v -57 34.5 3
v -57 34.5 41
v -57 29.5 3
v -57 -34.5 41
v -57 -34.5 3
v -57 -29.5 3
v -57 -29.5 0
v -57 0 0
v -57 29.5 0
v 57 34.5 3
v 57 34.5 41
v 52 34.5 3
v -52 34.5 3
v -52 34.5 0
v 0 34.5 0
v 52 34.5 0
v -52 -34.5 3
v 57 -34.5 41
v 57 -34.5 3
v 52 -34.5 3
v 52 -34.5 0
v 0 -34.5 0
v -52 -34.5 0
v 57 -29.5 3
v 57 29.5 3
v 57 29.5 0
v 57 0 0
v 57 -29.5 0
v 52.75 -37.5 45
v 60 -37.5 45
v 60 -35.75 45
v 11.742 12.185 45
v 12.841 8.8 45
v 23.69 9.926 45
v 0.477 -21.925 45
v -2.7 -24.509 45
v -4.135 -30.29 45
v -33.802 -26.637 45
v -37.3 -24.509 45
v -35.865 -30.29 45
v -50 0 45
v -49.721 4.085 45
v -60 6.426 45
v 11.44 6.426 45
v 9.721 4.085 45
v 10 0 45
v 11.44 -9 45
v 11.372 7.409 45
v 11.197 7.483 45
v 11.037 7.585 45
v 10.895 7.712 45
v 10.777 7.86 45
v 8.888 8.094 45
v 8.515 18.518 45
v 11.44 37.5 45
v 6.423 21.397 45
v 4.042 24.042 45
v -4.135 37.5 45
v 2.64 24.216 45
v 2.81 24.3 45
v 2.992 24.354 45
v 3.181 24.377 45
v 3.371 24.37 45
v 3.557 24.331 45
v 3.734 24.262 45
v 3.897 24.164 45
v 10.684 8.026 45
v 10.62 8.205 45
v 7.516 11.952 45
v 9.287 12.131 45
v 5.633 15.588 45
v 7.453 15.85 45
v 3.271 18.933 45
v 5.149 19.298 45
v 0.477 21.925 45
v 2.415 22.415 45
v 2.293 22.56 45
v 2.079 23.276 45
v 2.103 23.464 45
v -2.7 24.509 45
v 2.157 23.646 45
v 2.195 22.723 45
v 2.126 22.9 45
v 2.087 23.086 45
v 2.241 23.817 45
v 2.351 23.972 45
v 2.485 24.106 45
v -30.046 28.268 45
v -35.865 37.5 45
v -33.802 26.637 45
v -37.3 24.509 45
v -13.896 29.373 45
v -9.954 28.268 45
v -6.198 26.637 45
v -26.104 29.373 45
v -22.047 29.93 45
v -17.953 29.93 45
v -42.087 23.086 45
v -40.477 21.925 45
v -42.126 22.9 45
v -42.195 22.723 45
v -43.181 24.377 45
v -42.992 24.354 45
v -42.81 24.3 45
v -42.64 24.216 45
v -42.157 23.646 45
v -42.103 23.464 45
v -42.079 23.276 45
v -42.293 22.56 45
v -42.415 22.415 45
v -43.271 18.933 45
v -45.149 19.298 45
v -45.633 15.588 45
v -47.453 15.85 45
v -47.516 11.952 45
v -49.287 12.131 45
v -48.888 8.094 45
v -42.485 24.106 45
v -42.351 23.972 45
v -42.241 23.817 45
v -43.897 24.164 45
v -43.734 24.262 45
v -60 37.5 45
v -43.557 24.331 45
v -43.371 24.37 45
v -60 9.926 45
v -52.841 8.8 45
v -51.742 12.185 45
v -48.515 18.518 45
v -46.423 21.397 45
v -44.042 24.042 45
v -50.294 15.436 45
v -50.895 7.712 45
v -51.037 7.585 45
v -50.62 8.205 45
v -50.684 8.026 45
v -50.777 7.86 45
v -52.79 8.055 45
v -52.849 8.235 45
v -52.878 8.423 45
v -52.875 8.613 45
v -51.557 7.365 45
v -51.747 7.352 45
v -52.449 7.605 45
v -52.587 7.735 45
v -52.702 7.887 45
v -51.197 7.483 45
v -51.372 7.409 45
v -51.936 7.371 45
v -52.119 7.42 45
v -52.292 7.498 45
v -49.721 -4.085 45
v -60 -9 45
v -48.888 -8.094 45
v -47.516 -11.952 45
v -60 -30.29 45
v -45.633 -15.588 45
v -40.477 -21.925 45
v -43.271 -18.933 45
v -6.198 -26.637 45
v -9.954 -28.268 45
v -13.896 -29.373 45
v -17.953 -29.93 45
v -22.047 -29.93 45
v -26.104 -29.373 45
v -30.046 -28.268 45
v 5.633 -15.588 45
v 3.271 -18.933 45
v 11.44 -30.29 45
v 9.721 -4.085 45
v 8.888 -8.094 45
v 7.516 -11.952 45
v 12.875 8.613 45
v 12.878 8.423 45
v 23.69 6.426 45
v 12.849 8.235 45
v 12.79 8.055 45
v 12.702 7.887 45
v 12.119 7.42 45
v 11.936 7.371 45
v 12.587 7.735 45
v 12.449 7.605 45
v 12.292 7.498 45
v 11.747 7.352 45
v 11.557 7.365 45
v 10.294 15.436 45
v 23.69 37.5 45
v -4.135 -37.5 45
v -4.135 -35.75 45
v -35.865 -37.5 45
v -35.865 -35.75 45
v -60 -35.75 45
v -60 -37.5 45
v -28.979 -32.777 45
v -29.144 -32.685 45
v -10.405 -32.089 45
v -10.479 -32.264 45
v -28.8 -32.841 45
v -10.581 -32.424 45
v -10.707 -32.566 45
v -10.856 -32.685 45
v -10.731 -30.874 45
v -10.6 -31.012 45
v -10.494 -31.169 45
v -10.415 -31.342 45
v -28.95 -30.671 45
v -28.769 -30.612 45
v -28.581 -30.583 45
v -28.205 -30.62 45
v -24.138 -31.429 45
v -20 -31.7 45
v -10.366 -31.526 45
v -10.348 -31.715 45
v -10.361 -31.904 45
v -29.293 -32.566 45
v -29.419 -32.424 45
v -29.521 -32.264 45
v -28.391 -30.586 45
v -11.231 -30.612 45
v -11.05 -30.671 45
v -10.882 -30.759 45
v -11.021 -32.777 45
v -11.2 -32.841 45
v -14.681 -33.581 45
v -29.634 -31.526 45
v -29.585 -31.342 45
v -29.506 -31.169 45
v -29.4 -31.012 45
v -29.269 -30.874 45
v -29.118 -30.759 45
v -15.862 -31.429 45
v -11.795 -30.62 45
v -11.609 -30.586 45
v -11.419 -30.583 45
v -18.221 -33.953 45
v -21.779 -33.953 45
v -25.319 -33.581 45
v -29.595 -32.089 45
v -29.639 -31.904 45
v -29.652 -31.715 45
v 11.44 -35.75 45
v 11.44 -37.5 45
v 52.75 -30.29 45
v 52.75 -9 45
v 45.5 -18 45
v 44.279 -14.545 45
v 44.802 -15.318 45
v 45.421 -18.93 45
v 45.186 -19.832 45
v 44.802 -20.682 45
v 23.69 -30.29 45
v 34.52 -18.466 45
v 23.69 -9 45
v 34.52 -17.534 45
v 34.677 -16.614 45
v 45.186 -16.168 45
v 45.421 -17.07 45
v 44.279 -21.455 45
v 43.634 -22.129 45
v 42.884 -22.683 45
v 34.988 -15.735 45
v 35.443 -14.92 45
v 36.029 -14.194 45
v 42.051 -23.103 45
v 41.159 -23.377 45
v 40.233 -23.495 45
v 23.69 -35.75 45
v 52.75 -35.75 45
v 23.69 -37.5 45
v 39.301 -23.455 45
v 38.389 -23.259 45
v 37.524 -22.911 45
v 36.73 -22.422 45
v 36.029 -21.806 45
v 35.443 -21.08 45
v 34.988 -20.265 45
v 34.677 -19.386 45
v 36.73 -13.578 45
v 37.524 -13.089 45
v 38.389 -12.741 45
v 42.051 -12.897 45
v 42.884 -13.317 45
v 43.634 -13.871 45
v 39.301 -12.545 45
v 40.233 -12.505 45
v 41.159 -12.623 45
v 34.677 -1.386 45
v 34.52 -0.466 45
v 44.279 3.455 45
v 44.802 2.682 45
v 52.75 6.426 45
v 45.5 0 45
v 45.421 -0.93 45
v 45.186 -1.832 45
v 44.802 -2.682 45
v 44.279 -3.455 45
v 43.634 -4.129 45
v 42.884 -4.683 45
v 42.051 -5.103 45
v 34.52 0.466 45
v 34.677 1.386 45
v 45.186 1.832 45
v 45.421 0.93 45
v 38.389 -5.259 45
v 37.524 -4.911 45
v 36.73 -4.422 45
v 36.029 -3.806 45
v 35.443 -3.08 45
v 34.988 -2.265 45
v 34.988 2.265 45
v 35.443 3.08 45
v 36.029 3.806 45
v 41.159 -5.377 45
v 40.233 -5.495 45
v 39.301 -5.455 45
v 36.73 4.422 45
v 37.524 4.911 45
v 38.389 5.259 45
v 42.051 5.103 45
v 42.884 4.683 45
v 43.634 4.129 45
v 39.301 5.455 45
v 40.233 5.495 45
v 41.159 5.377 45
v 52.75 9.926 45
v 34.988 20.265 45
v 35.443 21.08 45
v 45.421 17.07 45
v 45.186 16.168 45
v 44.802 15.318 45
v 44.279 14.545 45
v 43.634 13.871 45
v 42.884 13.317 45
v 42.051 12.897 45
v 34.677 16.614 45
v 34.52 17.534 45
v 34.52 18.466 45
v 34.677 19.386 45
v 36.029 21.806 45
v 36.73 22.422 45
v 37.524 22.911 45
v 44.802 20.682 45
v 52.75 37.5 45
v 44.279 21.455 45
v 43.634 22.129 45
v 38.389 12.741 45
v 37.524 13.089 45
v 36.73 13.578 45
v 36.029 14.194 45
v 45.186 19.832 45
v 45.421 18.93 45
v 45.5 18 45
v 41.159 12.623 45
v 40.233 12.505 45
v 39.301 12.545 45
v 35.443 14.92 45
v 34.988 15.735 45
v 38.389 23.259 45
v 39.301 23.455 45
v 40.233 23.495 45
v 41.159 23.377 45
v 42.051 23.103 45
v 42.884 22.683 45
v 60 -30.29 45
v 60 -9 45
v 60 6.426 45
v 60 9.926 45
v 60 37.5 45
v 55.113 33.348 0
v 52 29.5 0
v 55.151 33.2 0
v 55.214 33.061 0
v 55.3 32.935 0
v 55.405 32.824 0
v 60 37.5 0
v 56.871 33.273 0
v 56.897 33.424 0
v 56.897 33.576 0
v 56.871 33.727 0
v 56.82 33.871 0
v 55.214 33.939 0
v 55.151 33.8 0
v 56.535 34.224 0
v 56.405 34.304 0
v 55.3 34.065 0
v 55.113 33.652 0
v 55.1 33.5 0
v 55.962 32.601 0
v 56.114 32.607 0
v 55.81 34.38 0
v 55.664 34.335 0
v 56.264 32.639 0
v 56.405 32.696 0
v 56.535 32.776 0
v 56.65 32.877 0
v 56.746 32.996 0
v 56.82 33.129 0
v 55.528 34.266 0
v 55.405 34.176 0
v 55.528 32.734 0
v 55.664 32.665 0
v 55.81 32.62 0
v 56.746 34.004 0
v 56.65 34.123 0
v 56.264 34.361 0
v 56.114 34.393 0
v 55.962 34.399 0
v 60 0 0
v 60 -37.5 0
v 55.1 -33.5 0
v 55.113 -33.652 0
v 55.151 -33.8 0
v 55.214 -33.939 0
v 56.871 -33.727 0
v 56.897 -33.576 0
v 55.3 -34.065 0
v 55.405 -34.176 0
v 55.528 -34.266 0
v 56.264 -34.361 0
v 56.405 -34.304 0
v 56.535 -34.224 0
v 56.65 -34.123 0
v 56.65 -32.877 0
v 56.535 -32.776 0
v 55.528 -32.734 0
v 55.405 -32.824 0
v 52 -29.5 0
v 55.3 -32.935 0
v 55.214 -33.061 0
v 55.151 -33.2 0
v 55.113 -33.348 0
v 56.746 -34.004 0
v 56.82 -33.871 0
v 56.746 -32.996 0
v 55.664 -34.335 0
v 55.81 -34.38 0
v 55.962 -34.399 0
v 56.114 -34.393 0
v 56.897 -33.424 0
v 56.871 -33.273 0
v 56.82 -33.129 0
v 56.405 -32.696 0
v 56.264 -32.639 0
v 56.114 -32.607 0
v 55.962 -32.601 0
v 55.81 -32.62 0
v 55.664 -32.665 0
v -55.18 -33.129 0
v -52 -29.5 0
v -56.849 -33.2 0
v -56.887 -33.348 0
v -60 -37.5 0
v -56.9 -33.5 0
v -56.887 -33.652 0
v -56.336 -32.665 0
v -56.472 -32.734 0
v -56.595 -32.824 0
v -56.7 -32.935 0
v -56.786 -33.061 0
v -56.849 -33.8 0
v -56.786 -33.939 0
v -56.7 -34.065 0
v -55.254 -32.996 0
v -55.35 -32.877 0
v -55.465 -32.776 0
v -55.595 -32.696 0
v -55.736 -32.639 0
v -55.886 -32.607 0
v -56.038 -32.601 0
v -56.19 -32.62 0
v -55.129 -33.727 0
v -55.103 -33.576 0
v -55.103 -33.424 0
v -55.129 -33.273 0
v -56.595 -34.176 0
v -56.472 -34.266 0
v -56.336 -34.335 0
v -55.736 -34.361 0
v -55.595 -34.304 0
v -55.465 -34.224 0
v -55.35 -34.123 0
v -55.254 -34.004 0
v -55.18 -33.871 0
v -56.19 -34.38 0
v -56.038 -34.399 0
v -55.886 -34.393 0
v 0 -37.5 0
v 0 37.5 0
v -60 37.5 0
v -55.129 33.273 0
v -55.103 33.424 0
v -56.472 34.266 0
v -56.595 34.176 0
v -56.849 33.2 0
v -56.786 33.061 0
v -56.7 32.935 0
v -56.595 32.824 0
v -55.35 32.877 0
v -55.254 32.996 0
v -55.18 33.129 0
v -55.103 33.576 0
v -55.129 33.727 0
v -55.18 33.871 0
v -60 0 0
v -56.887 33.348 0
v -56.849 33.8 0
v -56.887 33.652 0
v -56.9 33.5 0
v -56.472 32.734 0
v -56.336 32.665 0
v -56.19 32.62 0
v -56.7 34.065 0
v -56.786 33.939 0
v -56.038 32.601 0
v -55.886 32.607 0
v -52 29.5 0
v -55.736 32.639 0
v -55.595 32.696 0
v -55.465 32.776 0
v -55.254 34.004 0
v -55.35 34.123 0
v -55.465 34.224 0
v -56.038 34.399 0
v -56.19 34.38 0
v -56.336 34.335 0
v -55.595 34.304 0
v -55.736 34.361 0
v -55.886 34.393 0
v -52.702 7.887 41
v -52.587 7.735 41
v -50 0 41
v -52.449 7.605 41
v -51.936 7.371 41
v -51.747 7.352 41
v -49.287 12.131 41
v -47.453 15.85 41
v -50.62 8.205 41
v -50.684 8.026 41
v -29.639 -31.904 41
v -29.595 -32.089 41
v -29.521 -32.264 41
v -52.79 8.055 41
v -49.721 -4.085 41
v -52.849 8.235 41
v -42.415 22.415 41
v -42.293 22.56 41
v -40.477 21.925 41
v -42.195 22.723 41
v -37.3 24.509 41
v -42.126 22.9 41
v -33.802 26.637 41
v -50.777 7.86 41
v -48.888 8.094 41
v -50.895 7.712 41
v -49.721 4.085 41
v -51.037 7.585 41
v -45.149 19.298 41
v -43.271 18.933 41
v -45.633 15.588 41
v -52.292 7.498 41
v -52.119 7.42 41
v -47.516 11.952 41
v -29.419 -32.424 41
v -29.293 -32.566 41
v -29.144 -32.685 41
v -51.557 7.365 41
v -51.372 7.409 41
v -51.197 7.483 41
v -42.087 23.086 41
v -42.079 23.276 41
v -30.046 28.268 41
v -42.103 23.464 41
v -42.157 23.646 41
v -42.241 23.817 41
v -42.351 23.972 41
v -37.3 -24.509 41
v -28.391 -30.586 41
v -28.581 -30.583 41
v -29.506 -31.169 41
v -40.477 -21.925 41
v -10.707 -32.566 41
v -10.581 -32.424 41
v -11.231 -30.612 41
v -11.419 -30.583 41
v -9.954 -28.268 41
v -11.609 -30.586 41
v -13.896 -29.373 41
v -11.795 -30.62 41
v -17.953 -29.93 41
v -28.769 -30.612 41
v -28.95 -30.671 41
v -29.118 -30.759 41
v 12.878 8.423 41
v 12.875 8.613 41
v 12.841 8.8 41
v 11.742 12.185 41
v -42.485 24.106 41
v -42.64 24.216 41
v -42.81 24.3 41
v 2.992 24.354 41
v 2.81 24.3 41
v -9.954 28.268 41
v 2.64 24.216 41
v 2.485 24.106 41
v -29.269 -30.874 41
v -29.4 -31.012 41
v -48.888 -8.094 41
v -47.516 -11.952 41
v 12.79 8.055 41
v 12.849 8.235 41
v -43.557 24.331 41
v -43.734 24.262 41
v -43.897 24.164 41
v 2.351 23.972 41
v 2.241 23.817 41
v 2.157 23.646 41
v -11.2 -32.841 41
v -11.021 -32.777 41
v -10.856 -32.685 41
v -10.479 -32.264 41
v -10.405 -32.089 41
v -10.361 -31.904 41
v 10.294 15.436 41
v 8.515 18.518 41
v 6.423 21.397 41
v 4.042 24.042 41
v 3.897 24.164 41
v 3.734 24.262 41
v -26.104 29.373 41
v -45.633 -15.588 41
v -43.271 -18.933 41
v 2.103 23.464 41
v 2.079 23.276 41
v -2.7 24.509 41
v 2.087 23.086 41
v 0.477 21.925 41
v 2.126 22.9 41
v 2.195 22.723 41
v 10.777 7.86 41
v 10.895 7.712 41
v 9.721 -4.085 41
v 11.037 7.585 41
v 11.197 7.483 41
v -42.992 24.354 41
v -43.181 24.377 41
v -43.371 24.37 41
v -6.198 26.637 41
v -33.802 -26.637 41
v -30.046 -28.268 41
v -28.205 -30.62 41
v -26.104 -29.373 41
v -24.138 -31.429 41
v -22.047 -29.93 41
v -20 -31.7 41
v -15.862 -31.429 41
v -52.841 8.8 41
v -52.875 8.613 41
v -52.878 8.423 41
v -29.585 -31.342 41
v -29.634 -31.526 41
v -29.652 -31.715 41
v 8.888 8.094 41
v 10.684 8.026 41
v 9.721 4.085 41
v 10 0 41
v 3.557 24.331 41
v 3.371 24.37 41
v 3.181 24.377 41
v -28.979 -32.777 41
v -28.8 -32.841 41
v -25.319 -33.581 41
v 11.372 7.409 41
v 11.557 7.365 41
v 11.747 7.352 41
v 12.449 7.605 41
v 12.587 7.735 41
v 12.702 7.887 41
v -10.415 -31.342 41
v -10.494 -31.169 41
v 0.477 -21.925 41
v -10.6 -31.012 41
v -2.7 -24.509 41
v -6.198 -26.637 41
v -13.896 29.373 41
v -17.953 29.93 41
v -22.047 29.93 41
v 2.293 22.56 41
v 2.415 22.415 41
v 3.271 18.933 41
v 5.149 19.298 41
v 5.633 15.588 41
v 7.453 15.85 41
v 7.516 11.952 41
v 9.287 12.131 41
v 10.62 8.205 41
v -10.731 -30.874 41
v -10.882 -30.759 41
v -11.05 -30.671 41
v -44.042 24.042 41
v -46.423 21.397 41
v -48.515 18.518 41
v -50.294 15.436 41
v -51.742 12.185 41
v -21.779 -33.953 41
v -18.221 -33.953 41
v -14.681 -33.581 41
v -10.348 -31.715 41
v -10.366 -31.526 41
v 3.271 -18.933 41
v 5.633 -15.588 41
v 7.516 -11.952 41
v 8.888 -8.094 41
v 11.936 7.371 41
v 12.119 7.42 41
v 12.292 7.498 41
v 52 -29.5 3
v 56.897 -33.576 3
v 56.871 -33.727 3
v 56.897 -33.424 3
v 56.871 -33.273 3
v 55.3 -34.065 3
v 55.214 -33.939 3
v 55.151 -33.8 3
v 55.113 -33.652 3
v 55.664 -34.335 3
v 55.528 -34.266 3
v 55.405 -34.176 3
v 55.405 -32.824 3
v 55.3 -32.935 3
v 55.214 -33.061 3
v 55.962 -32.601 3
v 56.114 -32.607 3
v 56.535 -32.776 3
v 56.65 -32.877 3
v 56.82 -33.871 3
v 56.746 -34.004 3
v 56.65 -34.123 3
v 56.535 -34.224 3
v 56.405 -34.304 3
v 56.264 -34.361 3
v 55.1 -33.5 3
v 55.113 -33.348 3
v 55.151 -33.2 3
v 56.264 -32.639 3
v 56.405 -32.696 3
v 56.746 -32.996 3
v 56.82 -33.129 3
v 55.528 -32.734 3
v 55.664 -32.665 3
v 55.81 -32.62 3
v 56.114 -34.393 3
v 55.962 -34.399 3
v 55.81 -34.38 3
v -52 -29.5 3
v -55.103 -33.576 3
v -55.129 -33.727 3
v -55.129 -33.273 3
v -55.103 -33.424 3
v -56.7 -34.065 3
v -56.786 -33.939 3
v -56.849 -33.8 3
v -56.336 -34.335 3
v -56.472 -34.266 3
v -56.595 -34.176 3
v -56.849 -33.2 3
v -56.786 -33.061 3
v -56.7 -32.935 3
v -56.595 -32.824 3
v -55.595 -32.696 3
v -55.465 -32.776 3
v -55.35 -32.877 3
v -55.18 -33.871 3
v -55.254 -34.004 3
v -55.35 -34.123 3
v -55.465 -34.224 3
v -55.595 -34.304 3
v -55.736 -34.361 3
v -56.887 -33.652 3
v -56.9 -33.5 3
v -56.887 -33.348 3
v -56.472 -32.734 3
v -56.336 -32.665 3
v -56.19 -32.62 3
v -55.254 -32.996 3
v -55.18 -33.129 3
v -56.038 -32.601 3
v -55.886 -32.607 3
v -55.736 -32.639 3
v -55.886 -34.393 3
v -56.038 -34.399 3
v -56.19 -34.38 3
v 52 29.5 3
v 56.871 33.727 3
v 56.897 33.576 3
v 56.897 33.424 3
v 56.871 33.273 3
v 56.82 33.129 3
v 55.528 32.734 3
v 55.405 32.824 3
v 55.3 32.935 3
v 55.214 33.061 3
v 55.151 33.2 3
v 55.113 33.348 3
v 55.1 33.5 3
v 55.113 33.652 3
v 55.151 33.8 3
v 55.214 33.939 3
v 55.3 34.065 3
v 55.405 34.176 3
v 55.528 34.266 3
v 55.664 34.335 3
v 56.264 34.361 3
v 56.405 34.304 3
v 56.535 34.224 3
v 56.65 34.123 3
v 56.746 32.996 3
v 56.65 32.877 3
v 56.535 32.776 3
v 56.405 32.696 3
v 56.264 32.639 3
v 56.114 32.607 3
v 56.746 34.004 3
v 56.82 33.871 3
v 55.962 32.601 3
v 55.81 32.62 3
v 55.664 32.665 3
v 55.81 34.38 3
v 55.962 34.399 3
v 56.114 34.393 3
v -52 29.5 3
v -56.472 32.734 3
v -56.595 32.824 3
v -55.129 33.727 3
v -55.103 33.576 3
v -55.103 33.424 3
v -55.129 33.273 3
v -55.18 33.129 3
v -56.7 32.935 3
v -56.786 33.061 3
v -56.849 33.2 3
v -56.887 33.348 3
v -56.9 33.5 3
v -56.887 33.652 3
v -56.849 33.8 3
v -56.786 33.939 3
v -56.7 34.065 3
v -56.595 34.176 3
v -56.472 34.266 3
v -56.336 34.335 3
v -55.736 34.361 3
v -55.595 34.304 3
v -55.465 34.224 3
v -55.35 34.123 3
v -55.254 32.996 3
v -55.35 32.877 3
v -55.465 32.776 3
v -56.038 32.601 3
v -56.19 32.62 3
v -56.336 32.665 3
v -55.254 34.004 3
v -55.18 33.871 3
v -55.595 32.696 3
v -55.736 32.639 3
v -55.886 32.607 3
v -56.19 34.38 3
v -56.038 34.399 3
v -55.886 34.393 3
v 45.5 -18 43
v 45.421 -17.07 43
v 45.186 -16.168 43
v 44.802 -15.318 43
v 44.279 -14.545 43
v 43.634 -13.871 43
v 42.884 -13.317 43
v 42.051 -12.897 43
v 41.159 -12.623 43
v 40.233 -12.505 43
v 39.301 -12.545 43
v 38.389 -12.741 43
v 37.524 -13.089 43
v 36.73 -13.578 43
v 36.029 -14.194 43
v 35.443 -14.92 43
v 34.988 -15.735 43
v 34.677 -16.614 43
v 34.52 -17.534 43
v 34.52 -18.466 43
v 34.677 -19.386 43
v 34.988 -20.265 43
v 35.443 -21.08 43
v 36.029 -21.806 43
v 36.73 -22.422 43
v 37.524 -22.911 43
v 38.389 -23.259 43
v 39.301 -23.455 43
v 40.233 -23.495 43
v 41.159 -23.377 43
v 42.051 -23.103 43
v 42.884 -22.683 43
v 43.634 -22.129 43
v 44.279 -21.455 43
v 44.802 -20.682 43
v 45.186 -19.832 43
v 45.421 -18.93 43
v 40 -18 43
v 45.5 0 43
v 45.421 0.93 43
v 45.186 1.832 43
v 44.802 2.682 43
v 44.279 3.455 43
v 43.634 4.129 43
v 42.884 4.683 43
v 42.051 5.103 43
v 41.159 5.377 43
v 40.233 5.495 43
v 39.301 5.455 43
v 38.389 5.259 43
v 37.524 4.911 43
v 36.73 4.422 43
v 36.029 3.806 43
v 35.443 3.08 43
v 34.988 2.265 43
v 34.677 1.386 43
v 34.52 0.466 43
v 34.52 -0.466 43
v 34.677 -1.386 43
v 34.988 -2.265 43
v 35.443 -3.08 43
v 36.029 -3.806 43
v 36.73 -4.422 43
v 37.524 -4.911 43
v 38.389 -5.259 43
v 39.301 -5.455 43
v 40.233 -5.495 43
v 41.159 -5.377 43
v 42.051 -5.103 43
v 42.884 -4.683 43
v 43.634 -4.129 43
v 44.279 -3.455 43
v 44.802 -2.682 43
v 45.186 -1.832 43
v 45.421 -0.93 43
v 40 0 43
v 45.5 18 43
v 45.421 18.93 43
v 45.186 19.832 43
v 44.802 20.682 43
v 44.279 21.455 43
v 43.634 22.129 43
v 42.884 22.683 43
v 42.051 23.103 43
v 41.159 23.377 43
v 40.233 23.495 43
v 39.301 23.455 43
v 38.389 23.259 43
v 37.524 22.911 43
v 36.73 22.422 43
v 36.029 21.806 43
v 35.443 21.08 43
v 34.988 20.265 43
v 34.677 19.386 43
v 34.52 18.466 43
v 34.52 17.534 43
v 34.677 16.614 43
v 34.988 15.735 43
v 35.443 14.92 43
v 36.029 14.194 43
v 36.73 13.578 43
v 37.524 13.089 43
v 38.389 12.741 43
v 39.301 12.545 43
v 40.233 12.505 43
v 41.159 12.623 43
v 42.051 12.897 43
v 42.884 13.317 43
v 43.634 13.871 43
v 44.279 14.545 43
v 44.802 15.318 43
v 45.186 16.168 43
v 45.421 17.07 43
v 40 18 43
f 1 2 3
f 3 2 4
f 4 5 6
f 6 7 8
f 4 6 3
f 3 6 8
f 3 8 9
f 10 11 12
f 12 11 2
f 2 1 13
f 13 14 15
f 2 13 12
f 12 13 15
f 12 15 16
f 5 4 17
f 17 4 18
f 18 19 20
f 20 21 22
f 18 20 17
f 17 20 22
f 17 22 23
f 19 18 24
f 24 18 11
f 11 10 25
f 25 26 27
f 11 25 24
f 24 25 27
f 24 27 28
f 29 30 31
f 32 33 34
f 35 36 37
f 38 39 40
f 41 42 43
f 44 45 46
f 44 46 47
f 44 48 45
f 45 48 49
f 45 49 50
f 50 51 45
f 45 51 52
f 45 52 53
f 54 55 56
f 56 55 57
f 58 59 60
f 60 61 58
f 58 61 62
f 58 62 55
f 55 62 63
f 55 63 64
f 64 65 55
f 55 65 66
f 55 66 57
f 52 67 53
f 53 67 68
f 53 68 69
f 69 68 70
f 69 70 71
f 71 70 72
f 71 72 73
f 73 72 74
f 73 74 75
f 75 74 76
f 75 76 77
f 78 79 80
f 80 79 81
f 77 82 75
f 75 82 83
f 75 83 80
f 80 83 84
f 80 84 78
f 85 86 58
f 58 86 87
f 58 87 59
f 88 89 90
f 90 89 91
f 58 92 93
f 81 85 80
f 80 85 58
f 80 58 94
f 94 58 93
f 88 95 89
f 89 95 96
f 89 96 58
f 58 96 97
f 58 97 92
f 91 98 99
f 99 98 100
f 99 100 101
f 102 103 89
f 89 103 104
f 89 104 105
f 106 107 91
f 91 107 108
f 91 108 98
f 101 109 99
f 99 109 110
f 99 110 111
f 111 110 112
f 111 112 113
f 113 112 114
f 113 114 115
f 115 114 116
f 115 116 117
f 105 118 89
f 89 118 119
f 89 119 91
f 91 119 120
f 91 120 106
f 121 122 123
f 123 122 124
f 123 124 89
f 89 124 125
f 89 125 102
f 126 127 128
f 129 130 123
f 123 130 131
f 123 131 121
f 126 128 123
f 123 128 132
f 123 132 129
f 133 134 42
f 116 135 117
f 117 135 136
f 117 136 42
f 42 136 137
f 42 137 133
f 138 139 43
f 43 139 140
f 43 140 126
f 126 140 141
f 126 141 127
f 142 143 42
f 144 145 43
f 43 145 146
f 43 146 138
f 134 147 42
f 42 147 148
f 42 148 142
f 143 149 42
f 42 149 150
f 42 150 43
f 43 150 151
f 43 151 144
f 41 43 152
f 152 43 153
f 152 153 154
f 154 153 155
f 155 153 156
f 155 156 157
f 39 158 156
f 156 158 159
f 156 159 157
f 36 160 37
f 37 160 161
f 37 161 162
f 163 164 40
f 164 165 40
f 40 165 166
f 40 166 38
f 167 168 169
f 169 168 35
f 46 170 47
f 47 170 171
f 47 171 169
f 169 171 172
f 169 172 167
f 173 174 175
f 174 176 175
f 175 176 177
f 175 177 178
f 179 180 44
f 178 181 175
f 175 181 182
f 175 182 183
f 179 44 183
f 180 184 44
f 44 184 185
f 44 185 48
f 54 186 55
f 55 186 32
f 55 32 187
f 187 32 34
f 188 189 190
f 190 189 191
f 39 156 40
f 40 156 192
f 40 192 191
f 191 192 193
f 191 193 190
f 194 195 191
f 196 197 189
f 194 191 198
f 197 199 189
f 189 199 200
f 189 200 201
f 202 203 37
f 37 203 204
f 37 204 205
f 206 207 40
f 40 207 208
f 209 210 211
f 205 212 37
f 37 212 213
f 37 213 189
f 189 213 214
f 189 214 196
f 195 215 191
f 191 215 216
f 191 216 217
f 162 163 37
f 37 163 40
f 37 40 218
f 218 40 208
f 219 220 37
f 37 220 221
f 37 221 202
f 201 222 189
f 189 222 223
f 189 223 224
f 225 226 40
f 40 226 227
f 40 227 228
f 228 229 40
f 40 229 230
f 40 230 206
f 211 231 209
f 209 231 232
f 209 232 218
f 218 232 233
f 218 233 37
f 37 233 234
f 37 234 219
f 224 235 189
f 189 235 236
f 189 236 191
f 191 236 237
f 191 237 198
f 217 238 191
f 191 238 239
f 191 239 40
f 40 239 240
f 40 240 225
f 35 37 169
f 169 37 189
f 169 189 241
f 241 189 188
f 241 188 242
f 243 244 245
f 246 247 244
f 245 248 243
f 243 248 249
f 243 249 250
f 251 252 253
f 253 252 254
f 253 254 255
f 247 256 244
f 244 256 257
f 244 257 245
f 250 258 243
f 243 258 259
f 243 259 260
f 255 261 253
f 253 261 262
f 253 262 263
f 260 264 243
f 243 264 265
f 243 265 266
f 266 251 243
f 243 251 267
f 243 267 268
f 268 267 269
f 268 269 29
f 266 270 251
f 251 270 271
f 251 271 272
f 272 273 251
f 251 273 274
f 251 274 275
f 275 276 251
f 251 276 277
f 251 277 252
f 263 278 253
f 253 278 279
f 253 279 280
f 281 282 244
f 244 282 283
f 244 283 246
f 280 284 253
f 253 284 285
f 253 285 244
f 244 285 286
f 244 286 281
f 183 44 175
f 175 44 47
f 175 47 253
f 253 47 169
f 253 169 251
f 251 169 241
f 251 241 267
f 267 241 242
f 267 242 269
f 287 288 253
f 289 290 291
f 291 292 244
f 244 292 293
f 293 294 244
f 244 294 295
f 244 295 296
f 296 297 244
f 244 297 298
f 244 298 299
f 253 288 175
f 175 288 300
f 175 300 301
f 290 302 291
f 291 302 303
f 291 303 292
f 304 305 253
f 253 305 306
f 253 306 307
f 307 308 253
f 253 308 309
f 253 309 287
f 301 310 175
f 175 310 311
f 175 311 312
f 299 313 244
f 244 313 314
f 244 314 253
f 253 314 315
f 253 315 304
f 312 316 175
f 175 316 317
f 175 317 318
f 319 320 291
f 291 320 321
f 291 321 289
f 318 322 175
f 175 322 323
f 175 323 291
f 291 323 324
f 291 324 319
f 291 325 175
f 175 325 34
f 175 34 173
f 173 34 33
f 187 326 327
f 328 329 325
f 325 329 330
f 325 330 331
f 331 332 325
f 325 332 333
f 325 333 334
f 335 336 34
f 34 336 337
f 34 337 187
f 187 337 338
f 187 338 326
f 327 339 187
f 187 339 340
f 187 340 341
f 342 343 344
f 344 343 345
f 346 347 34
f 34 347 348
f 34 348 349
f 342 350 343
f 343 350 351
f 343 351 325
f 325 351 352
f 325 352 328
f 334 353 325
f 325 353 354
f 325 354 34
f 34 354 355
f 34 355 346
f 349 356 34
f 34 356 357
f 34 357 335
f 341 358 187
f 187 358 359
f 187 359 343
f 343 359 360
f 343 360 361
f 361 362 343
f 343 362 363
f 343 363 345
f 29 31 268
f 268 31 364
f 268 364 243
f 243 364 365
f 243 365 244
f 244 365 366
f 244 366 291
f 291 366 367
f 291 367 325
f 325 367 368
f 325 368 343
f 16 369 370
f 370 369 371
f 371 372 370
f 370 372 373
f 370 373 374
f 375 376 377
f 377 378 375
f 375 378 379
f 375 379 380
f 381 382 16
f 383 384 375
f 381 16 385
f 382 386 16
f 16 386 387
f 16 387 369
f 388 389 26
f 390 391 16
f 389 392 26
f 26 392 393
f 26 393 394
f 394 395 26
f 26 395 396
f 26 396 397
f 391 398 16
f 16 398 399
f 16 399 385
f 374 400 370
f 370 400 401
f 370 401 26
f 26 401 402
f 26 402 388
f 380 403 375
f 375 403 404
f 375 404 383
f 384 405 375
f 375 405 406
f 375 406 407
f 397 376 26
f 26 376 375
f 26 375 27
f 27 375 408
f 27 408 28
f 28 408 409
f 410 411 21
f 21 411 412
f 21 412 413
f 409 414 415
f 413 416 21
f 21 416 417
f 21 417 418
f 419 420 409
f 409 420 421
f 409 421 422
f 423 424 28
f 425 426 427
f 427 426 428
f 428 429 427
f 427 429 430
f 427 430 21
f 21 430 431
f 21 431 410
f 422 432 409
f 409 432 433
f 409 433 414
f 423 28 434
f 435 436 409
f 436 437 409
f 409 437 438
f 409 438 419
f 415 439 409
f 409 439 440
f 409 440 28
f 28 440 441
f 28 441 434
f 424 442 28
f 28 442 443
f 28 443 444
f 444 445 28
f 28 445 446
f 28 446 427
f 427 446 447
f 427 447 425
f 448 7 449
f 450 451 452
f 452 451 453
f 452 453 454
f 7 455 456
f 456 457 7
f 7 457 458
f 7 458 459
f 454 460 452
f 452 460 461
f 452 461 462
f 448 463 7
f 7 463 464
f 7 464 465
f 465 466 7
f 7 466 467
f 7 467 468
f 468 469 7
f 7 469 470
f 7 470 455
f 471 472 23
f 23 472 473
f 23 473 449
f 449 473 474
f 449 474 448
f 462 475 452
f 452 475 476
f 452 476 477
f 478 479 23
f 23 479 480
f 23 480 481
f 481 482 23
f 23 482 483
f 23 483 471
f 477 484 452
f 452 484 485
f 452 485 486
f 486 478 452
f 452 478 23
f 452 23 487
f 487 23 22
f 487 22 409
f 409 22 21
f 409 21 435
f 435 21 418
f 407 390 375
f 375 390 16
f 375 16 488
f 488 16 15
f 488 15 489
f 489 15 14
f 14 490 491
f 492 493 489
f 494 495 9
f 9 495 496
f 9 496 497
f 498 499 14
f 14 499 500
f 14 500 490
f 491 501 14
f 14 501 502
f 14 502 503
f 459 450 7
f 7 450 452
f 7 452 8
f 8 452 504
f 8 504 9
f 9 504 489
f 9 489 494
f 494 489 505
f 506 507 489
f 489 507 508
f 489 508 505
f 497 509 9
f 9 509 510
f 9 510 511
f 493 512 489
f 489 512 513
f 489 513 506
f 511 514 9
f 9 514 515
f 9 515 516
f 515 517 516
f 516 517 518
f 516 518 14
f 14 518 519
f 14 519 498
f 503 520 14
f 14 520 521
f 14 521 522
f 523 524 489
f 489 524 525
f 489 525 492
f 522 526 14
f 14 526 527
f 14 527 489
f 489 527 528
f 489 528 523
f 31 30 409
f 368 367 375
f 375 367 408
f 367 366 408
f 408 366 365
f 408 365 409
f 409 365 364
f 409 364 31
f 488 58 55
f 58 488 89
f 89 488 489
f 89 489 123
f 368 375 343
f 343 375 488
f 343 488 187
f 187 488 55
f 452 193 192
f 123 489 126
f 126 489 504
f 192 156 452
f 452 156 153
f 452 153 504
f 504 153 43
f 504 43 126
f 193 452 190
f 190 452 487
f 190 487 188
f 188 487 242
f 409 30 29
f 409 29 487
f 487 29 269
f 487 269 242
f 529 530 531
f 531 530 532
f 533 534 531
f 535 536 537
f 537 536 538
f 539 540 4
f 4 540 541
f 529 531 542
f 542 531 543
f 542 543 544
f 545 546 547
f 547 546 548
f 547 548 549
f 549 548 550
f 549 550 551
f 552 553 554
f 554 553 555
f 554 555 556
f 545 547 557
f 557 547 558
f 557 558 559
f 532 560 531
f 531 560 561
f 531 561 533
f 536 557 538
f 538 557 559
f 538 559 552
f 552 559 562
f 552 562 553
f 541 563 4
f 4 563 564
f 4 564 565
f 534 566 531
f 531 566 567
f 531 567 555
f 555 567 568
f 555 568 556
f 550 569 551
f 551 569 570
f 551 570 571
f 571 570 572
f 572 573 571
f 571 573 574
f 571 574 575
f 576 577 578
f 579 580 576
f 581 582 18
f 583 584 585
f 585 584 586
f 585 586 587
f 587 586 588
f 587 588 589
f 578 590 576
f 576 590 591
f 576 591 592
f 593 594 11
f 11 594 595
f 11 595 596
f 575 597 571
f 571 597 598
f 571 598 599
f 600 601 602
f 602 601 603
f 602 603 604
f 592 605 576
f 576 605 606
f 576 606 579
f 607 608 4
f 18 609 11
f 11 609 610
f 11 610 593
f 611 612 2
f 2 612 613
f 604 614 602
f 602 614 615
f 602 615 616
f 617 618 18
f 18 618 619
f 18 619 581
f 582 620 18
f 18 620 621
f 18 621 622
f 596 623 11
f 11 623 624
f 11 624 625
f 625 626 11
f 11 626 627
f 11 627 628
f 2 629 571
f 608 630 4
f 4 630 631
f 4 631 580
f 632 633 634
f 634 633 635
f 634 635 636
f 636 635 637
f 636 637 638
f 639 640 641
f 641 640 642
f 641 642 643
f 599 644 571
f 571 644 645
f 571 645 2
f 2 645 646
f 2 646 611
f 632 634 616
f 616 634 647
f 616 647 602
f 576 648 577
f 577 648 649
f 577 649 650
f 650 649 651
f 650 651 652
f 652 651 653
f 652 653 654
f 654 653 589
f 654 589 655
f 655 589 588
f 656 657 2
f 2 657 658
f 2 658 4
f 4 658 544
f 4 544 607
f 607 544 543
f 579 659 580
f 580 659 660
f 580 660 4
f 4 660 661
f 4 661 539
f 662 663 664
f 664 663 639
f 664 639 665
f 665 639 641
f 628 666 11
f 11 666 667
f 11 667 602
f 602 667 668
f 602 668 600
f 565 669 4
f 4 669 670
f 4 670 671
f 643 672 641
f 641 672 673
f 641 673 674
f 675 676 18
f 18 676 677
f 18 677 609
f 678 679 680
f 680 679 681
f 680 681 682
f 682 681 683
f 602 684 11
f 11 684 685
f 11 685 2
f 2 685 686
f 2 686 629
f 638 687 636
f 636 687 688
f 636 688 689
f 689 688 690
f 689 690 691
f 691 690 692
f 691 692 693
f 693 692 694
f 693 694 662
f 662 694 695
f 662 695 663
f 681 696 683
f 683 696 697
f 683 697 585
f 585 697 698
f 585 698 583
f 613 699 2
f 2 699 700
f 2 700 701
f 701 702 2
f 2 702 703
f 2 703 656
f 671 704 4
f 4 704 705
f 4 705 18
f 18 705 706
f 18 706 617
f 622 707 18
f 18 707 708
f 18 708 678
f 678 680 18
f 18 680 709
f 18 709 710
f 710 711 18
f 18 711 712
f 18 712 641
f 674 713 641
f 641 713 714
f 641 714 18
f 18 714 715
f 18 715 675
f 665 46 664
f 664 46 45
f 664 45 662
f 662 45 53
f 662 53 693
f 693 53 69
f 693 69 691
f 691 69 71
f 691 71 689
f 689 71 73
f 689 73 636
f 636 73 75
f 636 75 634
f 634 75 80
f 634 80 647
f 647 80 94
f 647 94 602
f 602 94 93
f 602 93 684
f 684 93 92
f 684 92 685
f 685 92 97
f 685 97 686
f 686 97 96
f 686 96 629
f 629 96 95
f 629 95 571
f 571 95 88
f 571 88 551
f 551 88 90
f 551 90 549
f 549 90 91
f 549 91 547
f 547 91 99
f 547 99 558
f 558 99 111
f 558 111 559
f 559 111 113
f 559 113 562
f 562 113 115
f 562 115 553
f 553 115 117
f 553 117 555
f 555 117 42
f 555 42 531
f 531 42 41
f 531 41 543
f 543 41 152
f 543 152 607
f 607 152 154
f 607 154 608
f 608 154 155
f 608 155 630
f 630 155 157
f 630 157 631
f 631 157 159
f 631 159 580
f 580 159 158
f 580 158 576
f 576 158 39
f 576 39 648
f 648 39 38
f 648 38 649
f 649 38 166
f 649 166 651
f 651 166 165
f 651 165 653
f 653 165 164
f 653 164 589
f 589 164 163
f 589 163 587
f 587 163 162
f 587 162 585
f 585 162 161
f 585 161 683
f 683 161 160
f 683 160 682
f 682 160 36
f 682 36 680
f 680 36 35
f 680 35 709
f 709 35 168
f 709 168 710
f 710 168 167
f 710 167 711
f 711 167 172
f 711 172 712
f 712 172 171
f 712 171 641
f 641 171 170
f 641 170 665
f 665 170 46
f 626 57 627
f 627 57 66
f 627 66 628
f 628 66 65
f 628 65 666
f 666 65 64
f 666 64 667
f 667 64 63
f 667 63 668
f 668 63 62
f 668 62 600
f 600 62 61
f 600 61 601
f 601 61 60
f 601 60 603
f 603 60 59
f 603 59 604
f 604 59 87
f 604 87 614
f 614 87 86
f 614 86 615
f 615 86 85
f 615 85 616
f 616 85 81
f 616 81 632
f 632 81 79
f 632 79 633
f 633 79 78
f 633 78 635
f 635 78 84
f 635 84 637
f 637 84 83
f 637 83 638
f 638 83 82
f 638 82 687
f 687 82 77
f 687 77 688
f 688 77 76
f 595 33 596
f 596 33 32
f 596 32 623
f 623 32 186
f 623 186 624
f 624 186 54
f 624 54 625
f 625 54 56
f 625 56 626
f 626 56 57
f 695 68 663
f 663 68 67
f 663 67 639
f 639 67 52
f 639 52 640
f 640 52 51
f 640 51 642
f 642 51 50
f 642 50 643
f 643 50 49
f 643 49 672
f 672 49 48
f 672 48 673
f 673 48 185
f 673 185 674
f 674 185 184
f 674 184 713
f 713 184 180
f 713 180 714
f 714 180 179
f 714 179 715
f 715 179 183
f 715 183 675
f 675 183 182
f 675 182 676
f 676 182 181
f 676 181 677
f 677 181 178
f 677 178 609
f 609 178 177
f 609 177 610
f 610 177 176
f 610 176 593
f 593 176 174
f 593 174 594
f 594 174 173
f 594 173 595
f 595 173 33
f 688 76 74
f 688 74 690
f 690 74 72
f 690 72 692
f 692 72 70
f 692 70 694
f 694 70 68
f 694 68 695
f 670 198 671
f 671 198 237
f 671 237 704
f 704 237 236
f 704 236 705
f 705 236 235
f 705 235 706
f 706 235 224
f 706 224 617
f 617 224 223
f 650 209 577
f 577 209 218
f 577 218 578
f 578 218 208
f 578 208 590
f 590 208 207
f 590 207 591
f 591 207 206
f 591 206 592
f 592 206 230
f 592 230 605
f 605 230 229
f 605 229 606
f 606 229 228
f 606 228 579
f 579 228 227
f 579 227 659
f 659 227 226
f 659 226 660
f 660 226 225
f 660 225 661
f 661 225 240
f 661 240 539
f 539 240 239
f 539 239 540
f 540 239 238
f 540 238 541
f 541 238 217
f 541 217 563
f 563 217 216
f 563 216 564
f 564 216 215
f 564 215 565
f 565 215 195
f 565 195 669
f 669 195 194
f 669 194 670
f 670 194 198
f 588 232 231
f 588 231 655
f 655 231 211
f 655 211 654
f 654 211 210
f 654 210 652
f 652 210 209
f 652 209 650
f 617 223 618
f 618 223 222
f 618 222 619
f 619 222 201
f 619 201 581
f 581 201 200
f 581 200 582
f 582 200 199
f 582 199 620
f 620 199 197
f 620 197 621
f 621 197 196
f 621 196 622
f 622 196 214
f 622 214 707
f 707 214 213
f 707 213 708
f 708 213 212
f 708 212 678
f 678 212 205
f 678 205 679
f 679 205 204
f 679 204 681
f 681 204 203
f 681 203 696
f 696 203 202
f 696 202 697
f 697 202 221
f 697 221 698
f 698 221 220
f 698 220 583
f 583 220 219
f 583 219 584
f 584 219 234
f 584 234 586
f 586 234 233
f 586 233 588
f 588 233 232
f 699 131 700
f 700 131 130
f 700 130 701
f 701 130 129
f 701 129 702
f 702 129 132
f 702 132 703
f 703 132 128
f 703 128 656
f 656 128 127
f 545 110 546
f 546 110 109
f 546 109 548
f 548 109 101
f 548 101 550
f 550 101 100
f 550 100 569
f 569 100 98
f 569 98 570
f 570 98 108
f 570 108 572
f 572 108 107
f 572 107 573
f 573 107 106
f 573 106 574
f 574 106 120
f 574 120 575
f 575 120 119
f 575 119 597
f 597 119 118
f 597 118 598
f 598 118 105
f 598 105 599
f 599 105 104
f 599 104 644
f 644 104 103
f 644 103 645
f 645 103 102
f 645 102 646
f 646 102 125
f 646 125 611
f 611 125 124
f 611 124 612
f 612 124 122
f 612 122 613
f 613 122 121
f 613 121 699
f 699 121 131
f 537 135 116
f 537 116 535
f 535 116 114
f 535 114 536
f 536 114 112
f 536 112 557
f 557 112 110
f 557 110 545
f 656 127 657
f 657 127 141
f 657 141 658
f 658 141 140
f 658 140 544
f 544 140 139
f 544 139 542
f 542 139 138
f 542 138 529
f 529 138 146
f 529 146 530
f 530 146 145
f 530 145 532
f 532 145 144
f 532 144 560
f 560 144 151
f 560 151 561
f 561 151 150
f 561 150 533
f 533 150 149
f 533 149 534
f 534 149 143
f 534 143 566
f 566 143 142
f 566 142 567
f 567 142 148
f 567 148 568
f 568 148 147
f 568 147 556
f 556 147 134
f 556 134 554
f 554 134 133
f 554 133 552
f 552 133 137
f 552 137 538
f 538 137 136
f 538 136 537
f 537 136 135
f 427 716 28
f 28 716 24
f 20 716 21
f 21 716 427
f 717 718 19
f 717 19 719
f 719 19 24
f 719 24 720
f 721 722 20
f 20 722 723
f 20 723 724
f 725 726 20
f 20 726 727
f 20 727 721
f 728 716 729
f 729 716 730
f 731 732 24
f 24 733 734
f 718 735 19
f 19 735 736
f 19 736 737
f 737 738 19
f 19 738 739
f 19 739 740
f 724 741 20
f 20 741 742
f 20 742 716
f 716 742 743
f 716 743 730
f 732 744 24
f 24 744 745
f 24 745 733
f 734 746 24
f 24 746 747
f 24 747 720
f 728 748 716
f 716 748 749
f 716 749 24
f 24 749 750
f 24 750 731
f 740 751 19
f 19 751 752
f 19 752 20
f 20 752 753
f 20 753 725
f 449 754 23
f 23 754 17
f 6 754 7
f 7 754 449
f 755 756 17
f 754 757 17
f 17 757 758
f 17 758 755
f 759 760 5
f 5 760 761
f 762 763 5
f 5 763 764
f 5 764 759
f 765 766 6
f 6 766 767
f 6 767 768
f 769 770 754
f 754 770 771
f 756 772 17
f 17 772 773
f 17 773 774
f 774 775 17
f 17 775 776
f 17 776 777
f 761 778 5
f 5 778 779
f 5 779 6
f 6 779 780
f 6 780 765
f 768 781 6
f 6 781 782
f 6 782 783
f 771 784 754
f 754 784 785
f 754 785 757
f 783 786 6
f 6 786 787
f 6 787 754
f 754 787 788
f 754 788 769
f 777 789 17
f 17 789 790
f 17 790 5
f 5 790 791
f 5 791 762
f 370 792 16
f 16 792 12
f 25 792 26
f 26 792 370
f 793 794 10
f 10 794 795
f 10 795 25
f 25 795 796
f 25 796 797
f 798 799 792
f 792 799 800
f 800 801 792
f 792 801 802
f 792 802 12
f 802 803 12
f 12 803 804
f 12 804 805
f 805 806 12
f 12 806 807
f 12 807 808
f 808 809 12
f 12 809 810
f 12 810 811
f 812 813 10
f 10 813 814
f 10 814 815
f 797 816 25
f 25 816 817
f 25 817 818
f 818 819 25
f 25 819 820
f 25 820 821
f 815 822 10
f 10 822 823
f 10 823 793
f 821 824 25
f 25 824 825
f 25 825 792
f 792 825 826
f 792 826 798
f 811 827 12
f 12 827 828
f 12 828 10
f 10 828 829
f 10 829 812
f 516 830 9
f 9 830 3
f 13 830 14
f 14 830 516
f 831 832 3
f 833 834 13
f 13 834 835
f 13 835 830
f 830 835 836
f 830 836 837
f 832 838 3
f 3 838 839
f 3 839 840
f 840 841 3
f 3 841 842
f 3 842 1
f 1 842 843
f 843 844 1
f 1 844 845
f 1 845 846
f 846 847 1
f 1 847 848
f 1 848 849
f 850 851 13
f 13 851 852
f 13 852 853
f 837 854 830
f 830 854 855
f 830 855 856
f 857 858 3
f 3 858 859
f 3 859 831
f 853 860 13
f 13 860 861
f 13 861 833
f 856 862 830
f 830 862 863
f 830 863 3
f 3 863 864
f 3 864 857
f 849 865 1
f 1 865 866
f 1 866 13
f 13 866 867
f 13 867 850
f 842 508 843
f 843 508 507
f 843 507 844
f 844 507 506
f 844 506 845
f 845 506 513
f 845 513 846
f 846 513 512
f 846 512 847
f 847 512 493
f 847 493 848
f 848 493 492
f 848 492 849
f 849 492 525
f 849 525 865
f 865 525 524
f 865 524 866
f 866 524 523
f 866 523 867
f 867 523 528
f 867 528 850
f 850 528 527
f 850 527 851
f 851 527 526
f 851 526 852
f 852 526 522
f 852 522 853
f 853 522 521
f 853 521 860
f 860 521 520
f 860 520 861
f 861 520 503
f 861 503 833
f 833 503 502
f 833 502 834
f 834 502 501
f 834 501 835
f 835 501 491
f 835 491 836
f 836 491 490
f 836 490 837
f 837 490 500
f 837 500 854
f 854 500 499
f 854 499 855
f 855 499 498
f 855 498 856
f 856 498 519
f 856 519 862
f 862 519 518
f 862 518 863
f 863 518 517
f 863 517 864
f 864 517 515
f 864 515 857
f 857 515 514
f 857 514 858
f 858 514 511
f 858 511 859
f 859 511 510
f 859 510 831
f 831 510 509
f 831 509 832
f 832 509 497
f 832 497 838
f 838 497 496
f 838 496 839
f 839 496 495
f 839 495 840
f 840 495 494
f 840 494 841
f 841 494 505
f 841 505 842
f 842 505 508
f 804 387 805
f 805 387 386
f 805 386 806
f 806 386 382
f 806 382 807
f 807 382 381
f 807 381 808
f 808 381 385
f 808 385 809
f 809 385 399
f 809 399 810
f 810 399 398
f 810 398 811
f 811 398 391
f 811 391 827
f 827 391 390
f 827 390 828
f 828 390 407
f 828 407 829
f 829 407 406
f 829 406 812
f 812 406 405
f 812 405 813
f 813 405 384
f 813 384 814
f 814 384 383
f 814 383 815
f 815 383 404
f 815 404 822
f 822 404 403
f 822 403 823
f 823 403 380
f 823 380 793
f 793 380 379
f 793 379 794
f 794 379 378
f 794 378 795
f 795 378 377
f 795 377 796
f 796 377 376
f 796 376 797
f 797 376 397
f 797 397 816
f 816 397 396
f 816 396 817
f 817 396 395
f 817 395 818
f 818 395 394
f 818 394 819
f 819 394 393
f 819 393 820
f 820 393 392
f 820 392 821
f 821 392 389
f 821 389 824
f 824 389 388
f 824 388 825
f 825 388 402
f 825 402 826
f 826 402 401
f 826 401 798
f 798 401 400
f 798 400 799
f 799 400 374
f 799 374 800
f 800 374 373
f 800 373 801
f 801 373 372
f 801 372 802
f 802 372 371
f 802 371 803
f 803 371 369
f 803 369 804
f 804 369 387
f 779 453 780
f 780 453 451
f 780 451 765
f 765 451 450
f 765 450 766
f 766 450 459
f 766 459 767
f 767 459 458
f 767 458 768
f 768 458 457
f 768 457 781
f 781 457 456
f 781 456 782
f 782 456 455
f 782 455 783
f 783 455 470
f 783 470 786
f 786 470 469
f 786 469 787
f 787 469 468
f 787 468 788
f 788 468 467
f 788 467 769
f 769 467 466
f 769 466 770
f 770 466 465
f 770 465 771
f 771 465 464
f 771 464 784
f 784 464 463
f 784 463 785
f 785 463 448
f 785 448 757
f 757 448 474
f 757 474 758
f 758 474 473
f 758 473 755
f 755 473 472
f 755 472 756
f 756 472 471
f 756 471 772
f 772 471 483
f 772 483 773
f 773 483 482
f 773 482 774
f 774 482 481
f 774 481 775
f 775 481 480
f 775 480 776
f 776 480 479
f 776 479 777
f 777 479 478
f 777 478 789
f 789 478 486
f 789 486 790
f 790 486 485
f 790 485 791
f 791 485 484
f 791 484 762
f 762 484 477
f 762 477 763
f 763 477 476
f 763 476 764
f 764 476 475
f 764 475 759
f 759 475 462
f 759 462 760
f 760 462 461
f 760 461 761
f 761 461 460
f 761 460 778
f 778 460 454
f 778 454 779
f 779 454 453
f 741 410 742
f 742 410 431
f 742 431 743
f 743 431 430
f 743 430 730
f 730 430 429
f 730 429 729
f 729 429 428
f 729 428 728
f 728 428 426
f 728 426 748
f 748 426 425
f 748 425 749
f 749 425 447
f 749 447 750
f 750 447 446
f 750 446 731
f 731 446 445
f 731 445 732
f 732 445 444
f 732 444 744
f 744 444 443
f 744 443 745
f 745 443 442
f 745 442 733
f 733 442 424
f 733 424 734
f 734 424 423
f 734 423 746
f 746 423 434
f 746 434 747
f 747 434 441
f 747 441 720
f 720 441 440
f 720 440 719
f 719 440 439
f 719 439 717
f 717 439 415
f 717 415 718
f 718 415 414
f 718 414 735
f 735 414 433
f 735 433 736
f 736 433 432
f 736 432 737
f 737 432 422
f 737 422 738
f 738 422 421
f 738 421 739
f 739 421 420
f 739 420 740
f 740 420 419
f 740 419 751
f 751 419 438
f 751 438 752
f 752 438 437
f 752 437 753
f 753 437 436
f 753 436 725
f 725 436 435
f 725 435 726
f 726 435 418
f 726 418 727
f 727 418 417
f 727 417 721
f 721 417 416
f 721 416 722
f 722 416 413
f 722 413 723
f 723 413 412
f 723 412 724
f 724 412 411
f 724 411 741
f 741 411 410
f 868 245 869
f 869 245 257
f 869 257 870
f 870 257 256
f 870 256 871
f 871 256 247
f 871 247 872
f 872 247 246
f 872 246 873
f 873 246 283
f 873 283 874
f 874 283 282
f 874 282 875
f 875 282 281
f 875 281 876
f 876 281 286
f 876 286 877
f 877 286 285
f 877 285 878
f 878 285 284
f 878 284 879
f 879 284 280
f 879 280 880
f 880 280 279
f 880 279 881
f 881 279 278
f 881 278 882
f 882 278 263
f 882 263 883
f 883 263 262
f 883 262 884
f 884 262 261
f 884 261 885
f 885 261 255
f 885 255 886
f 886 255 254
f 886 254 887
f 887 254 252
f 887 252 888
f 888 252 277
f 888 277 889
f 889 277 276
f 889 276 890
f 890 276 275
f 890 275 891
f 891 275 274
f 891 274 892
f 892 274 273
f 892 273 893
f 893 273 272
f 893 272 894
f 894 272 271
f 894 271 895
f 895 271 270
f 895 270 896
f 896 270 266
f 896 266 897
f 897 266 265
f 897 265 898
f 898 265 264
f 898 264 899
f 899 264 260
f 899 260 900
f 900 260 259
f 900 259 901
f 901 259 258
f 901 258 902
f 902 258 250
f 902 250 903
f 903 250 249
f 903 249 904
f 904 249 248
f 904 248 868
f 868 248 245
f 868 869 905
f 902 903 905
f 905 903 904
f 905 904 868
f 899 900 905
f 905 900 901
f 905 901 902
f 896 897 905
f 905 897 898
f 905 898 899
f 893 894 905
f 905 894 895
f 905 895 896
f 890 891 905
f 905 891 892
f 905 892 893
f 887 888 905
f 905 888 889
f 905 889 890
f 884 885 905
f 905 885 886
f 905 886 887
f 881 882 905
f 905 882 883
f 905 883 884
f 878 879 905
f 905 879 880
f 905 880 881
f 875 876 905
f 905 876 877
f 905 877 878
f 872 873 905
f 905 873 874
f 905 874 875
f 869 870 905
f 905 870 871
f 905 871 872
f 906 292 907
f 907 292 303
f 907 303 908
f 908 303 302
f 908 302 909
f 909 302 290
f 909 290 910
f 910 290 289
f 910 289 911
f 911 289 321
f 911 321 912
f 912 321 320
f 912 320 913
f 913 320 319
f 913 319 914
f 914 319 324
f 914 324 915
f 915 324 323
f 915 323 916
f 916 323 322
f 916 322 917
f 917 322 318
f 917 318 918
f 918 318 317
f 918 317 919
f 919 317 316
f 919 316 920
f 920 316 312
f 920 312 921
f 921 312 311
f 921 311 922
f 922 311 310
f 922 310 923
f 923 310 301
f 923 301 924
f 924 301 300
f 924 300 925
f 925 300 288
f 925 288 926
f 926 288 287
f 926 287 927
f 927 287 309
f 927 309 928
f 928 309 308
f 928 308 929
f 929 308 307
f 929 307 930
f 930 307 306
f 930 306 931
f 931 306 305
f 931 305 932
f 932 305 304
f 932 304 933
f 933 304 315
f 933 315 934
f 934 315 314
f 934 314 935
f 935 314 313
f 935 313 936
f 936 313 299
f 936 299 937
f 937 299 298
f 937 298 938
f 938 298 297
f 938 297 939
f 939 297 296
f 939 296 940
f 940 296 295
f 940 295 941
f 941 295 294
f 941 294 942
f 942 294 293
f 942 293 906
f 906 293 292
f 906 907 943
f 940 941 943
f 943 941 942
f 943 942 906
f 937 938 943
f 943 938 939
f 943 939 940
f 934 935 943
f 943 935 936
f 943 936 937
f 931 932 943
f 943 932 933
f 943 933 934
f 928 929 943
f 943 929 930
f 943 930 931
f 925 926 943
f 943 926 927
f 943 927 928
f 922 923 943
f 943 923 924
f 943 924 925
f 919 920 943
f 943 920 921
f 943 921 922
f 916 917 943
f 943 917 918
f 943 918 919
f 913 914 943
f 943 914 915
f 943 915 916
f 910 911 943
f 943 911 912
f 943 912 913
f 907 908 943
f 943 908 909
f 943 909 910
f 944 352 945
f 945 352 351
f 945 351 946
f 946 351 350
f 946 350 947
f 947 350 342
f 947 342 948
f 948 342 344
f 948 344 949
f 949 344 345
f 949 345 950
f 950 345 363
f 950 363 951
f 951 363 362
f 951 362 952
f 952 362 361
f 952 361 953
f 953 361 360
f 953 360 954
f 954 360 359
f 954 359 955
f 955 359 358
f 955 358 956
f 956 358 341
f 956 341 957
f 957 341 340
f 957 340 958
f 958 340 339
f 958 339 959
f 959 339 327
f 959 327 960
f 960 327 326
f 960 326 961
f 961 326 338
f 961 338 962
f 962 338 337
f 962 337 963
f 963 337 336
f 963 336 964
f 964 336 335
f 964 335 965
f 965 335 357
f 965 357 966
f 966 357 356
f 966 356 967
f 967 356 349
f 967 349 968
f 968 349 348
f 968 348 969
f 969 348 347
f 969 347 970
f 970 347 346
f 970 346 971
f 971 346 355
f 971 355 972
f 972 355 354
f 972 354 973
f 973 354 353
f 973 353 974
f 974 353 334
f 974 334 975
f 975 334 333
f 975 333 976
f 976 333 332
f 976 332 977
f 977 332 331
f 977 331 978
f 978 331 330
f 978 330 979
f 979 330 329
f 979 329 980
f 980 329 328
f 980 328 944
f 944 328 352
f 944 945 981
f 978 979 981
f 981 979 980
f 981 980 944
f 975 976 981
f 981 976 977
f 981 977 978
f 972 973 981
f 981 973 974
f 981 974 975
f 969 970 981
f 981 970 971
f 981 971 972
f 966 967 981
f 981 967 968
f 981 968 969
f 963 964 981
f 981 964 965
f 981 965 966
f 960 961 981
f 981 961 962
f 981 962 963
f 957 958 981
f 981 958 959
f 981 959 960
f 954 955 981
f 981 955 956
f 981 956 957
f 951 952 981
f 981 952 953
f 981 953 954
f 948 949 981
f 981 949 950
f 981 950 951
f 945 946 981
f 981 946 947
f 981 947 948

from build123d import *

# Parameters (mm, degrees)
SKETCH_1_W          = 120
SKETCH_1_H          = 75
SKETCH_1_W_2        = 114
SKETCH_1_H_2        = 69
EXTRUDE_1_DEPTH     = 45
SKETCH_2_R          = 30
EXTRUDE_2_DEPTH     = 4
CUT_EXTRUDE_1_DEPTH = 84.852549156
SKETCH_3_W          = 8
SKETCH_3_H          = 8
EXTRUDE_3_DEPTH     = 3
SKETCH_3_3_R        = 0.9
CUT_EXTRUDE_2_DEPTH = 3
SKETCH_4_R          = 5.5
CUT_EXTRUDE_3_DEPTH = 2


with BuildPart() as part:
    # 草图1 → 凸台-拉伸1 (new body)
    with BuildSketch(Plane.XY):
        Rectangle(SKETCH_1_W, SKETCH_1_H)
        Rectangle(SKETCH_1_W_2, SKETCH_1_H_2, mode=Mode.SUBTRACT)
    extrude(amount=EXTRUDE_1_DEPTH)

    # 草图2 → 凸台-拉伸2 (add)
    with BuildSketch(Plane.XY.offset(45)):
        Polygon((20, 37.5), (-60, 37.5), (-60, -37.5), (20, -37.5), (20, -34.5), (57, -34.5), (57, 34.5), (20, 34.5), align=None)
        with Locations((-20, 0)):
            Circle(SKETCH_2_R, mode=Mode.SUBTRACT)
    extrude(amount=-EXTRUDE_2_DEPTH)

    # 草图2<4> → 切除-拉伸1 (cut, through all)
    with BuildSketch(Plane.XY.offset(45)):
        with BuildLine():
            ThreePointArc((12.841478126, 8.799847414), (9.44486376, 16.999999947), (4.04163056, 24.04163056))
            ThreePointArc((4.04163056, 24.04163056), (2.415284962, 24.041630558), (2.415284968, 22.41528496))
            ThreePointArc((2.415284968, 22.41528496), (7.453005293, 15.850000012), (10.619848685, 8.204563761))
            ThreePointArc((10.619848685, 8.204563761), (12.02830522, 7.391390911), (12.841478126, 8.799847414))
        make_face()
        with BuildLine():
            ThreePointArc((-28.799847612, -32.841478073), (-20, -34), (-11.200152388, -32.841478073))
            ThreePointArc((-11.200152388, -32.841478073), (-10.386979697, -31.433021385), (-11.795436406, -30.61984873))
            ThreePointArc((-11.795436406, -30.61984873), (-20.000000038, -31.7), (-28.204563667, -30.61984871))
            ThreePointArc((-28.204563667, -30.61984871), (-29.613020313, -31.433021421), (-28.799847612, -32.841478073))
        make_face()
        with BuildLine():
            ThreePointArc((-44.04163056, 24.04163056), (-49.444863704, 17.000000043), (-52.841478068, 8.79984763))
            ThreePointArc((-52.841478068, 8.79984763), (-52.028305318, 7.391390937), (-50.61984868, 8.204563781))
            ThreePointArc((-50.61984868, 8.204563781), (-47.453005293, 15.850000012), (-42.415284981, 22.415284946))
            ThreePointArc((-42.415284981, 22.415284946), (-42.415284955, 24.041630551), (-44.04163056, 24.04163056))
        make_face()
    extrude(amount=-CUT_EXTRUDE_1_DEPTH, mode=Mode.SUBTRACT)

    # 草图3 → 凸台-拉伸3 (add)
    with BuildSketch(Plane(origin=(0, 0, 0), x_dir=(-1, 0, 0), z_dir=(0, 0, -1))):
        with Locations((-56, 33.5)):
            Rectangle(SKETCH_3_W, SKETCH_3_H)
        with Locations((56, 33.5)):
            Rectangle(SKETCH_3_W, SKETCH_3_H)
        with Locations((-56, -33.5)):
            Rectangle(SKETCH_3_W, SKETCH_3_H)
        with Locations((56, -33.5)):
            Rectangle(SKETCH_3_W, SKETCH_3_H)
    extrude(amount=-EXTRUDE_3_DEPTH)

    # 草图3<3> → 切除-拉伸2 (cut)
    with BuildSketch(Plane(origin=(0, 0, 0), x_dir=(-1, 0, 0), z_dir=(0, 0, -1))):
        with Locations((-56, 33.5)):
            Circle(SKETCH_3_3_R)
        with Locations((-56, -33.5)):
            Circle(SKETCH_3_3_R)
        with Locations((56, -33.5)):
            Circle(SKETCH_3_3_R)
        with Locations((56, 33.5)):
            Circle(SKETCH_3_3_R)
    extrude(amount=-CUT_EXTRUDE_2_DEPTH, mode=Mode.SUBTRACT)

    # 草图4 → 切除-拉伸3 (cut)
    with BuildSketch(Plane.XY.offset(45)):
        with Locations((40, 18)):
            Circle(SKETCH_4_R)
        with Locations((40, 0)):
            Circle(SKETCH_4_R)
        with Locations((40, -18)):
            Circle(SKETCH_4_R)
    extrude(amount=-CUT_EXTRUDE_3_DEPTH, mode=Mode.SUBTRACT)


solid = part.part
